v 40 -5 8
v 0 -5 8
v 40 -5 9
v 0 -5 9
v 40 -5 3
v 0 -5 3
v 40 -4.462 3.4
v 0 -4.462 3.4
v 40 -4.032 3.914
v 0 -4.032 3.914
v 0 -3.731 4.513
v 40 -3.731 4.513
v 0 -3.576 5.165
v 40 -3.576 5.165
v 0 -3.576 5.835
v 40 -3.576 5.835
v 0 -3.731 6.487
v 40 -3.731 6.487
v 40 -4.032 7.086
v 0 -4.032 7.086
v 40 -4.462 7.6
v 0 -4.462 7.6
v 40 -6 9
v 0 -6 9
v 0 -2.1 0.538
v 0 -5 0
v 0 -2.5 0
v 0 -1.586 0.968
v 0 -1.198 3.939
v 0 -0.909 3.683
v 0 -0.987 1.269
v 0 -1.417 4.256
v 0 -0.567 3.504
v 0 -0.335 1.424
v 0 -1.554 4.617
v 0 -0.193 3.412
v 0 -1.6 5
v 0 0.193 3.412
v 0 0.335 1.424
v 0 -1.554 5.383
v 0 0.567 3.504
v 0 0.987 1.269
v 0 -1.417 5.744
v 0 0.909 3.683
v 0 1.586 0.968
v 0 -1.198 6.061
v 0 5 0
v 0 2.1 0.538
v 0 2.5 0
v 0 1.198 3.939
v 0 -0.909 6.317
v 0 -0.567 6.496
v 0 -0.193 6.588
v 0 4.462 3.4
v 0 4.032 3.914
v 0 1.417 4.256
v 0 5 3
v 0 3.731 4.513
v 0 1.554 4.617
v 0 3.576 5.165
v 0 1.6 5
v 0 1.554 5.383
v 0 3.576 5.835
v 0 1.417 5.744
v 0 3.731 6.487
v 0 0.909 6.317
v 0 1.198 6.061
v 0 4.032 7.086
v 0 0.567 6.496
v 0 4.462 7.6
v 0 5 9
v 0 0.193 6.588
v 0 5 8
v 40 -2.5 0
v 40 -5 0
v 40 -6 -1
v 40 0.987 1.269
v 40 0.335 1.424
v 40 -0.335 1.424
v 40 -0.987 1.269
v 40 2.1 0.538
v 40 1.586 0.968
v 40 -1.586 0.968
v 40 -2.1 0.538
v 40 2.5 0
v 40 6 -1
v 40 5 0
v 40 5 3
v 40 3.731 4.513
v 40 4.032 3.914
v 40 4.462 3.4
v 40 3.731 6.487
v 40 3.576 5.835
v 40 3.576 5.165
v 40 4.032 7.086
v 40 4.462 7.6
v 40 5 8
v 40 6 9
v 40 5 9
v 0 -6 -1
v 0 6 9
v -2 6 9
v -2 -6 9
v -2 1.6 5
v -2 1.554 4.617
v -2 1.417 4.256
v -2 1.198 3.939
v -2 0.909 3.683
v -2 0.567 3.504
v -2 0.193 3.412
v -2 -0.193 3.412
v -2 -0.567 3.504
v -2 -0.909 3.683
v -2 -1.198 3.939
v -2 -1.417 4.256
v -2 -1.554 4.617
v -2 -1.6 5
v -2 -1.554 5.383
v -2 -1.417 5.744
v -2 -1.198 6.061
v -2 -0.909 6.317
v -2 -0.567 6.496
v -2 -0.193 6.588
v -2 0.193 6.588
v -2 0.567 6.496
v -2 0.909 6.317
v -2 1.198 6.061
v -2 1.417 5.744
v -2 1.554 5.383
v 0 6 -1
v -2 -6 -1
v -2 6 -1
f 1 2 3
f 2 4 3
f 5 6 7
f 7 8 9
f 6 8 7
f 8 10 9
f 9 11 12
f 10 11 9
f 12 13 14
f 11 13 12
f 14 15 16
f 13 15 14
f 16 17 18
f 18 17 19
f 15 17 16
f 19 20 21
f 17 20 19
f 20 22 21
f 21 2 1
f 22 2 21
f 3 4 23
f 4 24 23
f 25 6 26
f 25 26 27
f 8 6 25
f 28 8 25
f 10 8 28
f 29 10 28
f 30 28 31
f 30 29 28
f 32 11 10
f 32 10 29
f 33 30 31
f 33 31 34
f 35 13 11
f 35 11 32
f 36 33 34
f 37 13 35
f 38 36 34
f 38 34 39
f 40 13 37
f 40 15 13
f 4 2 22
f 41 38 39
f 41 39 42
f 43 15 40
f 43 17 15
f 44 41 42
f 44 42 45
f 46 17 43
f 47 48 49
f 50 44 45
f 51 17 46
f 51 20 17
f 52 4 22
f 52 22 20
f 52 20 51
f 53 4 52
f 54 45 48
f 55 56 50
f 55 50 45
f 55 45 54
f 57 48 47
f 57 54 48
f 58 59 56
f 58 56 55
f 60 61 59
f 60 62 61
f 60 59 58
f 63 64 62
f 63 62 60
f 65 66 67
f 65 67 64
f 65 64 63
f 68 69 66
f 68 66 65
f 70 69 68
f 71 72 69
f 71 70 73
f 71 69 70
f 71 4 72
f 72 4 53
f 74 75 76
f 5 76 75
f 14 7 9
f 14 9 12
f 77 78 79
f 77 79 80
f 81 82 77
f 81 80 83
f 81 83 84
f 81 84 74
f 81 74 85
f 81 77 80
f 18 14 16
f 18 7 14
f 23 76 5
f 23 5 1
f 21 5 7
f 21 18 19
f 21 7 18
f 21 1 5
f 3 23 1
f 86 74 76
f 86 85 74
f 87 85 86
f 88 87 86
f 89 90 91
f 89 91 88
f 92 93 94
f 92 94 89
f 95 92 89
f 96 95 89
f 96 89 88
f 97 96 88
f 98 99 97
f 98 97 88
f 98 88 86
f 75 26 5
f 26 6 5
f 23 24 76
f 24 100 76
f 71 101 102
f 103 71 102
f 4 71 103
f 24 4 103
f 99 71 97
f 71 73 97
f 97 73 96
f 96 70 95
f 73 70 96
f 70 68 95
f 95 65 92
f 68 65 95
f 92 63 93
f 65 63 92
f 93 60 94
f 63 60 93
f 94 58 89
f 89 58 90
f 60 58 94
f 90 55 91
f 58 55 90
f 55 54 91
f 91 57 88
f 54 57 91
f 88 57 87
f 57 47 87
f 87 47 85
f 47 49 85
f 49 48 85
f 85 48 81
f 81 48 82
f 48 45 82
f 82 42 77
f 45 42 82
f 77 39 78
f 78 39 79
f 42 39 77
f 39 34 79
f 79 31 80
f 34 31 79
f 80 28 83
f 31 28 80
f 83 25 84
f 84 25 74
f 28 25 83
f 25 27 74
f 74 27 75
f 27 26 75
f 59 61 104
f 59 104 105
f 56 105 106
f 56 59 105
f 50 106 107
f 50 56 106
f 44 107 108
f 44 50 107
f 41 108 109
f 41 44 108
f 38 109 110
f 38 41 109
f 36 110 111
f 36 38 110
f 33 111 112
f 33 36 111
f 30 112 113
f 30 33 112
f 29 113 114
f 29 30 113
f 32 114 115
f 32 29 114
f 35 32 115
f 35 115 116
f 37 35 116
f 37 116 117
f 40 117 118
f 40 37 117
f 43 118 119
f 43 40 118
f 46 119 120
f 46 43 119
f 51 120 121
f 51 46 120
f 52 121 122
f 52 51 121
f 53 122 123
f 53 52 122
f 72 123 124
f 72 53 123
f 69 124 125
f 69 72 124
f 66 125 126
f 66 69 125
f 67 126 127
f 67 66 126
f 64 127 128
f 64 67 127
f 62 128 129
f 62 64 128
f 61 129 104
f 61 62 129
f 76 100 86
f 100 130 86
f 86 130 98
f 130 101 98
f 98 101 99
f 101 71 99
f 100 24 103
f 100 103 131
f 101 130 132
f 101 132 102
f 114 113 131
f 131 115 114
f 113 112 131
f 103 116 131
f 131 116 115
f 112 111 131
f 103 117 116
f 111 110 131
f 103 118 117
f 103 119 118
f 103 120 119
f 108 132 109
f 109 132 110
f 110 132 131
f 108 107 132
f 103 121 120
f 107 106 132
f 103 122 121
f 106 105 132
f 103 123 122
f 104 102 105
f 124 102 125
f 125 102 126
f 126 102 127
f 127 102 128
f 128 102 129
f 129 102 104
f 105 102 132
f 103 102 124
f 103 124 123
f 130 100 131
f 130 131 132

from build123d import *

# Parameters (mm, degrees)
PAD_DEPTH    = 40
SKETCH001_W  = 12
SKETCH001_H  = 10
SKETCH001_R  = 1.6
PAD001_DEPTH = 2


with BuildPart() as part:
    # Sketch → Pad (new body)
    with BuildSketch(Plane.YZ):
        with BuildLine():
            Line((-5, 8), (-5, 9))
            Line((-5, 9), (-6, 9))
            Line((-6, 9), (-6, -1))
            Line((-6, -1), (6, -1))
            Line((6, -1), (6, 9))
            Line((6, 9), (5, 9))
            Line((5, 9), (5, 8))
            ThreePointArc((5, 8), (3.556624, 5.5), (5, 3))
            Line((5, 3), (5, 0))
            Line((5, 0), (2.5, 0))
            ThreePointArc((2.5, 0), (0, 1.443376), (-2.5, 0))
            Line((-2.5, 0), (-5, 0))
            Line((-5, 0), (-5, 3))
            ThreePointArc((-5, 3), (-3.556624, 5.5), (-5, 8))
        make_face()
    extrude(amount=PAD_DEPTH)

    # Sketch001 (on Face15 of Pad) → Pad001 (join)
    with BuildSketch(Plane(origin=(0, 0, 0), x_dir=(0, 1, 0), z_dir=(-1, 0, 0))):
        with Locations((0, -4)):
            Rectangle(SKETCH001_W, SKETCH001_H)
        with Locations((0, -5)):
            Circle(SKETCH001_R, mode=Mode.SUBTRACT)
    extrude(amount=PAD001_DEPTH)


solid = part.part
